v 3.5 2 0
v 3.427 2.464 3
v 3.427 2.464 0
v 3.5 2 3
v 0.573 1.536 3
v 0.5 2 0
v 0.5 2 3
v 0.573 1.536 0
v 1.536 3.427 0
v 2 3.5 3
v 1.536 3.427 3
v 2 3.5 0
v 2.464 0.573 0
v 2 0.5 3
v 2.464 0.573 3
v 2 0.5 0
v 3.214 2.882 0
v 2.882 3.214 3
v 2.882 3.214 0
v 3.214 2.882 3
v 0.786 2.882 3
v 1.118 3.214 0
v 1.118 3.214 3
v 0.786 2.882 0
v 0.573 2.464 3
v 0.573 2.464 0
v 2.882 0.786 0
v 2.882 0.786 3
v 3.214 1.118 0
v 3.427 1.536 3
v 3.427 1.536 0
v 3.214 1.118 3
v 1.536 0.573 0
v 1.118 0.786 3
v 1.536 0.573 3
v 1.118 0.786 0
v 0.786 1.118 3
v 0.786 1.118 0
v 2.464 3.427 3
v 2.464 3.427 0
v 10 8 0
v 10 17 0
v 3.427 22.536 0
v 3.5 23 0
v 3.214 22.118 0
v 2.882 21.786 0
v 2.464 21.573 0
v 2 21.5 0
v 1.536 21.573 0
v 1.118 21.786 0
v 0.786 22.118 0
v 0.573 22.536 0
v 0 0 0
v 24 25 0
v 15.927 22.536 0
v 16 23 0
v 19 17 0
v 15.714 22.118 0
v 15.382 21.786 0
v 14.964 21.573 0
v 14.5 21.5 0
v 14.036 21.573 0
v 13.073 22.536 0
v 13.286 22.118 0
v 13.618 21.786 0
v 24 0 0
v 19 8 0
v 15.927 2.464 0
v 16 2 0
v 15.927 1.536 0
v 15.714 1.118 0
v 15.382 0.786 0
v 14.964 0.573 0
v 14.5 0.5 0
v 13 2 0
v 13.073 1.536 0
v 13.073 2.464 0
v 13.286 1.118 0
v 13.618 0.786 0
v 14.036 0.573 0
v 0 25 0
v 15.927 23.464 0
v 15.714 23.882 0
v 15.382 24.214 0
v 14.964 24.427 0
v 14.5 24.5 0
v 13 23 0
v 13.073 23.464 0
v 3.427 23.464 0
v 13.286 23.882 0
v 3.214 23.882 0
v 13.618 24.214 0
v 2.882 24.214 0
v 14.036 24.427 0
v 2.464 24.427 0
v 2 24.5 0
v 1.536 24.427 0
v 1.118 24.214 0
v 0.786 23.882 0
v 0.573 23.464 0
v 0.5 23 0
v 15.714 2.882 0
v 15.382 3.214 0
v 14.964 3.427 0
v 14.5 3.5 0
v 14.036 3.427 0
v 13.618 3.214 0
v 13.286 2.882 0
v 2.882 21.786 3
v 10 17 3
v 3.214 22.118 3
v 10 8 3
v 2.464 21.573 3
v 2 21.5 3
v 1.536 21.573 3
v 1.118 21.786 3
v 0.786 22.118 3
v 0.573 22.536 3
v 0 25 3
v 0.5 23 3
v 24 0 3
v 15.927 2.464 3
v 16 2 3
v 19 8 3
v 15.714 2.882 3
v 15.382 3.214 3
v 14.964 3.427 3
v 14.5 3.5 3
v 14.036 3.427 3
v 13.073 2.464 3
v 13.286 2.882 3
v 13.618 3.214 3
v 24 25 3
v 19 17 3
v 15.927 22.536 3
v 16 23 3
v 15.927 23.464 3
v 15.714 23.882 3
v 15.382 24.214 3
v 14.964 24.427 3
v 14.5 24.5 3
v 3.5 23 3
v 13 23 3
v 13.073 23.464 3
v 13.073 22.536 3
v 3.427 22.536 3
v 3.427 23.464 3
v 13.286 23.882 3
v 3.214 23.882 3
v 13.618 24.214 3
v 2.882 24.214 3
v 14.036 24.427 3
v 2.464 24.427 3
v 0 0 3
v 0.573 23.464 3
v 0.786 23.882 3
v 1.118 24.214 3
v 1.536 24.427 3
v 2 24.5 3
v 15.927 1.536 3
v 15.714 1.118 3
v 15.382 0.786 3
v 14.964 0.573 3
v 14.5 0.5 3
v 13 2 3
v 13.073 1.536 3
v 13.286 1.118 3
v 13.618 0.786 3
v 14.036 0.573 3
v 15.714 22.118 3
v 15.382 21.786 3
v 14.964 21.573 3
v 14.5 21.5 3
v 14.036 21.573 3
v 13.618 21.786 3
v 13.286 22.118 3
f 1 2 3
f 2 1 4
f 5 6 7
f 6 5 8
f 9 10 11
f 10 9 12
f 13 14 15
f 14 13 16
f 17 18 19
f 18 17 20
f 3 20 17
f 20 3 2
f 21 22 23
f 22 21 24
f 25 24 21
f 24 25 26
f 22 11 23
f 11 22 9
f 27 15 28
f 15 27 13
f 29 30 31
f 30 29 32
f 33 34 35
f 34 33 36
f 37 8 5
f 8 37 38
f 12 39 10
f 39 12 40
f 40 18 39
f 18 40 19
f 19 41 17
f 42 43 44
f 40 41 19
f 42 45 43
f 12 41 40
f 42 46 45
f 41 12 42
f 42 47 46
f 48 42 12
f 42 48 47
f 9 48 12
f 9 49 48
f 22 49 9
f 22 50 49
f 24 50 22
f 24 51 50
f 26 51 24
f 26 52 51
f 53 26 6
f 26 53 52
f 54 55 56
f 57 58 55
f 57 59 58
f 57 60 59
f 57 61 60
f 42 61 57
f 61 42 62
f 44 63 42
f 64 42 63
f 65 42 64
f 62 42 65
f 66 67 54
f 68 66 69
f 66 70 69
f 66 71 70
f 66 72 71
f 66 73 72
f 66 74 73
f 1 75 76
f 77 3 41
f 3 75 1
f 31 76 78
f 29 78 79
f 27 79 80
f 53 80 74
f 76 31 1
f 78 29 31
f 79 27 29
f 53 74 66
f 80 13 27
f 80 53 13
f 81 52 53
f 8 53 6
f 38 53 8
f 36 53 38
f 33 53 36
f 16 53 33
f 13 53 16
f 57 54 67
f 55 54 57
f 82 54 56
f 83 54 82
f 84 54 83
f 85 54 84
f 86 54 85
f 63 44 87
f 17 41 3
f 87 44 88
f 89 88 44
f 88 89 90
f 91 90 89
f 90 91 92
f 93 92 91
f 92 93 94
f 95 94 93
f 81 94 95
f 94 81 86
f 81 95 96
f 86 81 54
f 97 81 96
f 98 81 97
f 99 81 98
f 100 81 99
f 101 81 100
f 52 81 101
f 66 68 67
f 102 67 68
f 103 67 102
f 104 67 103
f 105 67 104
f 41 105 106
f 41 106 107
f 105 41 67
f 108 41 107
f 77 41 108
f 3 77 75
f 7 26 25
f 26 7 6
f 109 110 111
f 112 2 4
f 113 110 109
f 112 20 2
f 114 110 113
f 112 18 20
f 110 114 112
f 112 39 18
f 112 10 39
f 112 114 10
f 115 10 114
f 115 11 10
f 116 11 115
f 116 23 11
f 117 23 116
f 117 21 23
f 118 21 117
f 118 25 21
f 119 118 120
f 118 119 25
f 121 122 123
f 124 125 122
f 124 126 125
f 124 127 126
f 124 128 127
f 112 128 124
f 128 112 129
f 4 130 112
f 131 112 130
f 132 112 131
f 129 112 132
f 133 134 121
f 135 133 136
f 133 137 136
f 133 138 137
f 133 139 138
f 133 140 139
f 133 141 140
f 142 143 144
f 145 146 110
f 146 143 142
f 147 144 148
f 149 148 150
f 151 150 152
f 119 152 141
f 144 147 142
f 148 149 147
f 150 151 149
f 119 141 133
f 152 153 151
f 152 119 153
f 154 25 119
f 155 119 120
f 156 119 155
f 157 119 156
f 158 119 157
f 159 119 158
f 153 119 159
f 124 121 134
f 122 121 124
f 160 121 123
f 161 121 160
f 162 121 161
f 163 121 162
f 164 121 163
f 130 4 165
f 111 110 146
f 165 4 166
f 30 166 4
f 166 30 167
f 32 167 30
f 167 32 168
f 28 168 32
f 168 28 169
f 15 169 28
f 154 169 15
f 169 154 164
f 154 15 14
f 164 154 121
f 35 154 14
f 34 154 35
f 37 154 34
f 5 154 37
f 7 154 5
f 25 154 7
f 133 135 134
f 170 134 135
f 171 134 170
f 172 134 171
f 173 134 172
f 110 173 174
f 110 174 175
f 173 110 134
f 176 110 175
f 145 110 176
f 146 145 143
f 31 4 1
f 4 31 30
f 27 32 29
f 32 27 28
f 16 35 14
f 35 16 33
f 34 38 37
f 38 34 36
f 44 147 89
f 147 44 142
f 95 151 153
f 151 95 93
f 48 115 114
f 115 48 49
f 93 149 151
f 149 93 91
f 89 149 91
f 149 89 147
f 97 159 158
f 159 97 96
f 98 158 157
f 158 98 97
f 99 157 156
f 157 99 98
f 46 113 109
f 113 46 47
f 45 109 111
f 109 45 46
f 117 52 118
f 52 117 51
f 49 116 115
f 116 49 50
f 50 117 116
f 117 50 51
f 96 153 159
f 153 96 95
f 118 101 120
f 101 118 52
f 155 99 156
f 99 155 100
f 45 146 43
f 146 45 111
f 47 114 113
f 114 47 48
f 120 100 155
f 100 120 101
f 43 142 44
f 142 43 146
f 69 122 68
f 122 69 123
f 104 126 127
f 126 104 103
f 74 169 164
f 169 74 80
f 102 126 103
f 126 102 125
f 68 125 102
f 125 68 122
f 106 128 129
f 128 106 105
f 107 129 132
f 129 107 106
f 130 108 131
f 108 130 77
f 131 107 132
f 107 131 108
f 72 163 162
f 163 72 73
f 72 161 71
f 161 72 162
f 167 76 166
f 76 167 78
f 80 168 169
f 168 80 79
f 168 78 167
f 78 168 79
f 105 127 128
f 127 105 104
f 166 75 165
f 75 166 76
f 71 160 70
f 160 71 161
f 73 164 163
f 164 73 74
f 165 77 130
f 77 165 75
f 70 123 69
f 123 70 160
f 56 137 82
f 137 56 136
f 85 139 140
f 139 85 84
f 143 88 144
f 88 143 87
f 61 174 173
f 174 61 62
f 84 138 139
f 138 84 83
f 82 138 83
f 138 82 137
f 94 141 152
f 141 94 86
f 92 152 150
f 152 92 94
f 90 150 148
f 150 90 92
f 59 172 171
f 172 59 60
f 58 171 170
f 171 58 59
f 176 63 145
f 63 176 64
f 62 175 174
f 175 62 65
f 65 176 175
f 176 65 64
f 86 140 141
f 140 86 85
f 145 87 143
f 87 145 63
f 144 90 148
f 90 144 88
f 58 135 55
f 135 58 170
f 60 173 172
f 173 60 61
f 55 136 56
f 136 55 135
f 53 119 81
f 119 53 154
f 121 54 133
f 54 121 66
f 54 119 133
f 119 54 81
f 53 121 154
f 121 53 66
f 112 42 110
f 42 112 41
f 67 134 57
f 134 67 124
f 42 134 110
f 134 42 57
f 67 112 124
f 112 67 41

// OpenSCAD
// file: units.scad
/*
 * Basic units.
 * 
 * Originally by Hans Häggström, 2010.
 * Dual licenced under Creative Commons Attribution-Share Alike 3.0 and LGPL2 or later
 */

// Default unit of measurement is the millimetre
nm = 0.000001 * mm; // nanometre
µm = 0.001 * mm; // micrometre
um = µm; // micrometre (alternate)
mm = 1; // millimetre
cm = 10 * mm; // centimetre
dm = 100 * mm; // decimetre
m = 1000 * mm; // metre
dam = 10000 * mm; // decametre
hm = 100000 * mm; // hectometre
km = 1000000 * mm; // kilometre

// For the purposes of compatibility with Chinese, Japanese and Korean (CJK)
// characters, Unicode has symbols for:
//    nanometre (㎚) - code U+339A
//    micrometre (㎛) - code U+339B
//    millimetre (㎜) - code U+339C
//    centimetre (㎝) - code U+339D
//    kilometre (㎞) - code U+339E
㎚ = nm;
㎛ = µm;
㎜ = mm;
㎝ = cm;
㎞ = km;

inch = 25.4 * mm;

X = [1, 0, 0];
Y = [0, 1, 0];
Z = [0, 0, 1];

M3 = 3*mm;
M4 = 4*mm;
M5 = 5*mm;
M6 = 6*mm;
M8 = 8*mm;


// When a small distance is needed to overlap shapes for boolean cutting, etc.
epsilon = 0.01*mm;
OS = epsilon;  // Over size
// file: kamikaze_shapes.scad
/*
 * Project Name: Kamikaze Shapes
 * Author: Kamikaze Joe
 *
 * Description:
 *
 * Library of modules that create shapes I use frequently.
 *
 */

/* *** TODO LIST ***
 *
 * Tab to spaces
 *
 */

/* ***** Cheats *****

translate([0,0,0])
    rotate([0,0,0])
        function();


 */

// INCLUDE/USE LIBRARIES
//include <shapes.scad>;
//include <fillets.scad>;


// *** VARIABLES ***
standard_fn = 20;
print_gap = 0;

// *** MODULES AND FUNCTIONS *** //



module rounded_base_plate(plate_x, plate_y, plate_corner_r, plate_depth) {

    translate([plate_corner_r, plate_corner_r,0])
    // Recenter minkowski origin to (0,0).
        minkowski() // Remeber outer dimensions of the box are now x+2r
        {
            cube([plate_x - (2 * plate_corner_r),
                  plate_y - (2 * plate_corner_r),
                  plate_depth]);

            cylinder(r=plate_corner_r,h=plate_depth);
        }
}



// Function to create a triangluar prism shape or wedge
module wedge(triangle_height, triangle_base, length) {


    linear_extrude(height = length,
                   center = false,
                   convexity = 10,
                   twist = 0)

        polygon(
                 points=[ [0,0],
                          [0,triangle_height],
                          [triangle_base,triangle_height] ],

                 paths=[ [0,1,2] ]
               );
}


// Rounded isoceles right triangular shape.
// Intended to cut out of flat panels to save space and weight
module triangle_cut_out(triangle_height, length, corner_radius, mod_fn=$fn) {

    translate([corner_radius, corner_radius,0])
    // Recenter minkowski origin to (0,0).
    minkowski() {
        linear_extrude(height = length,
                       center = true,
                       convexity = 10,
                       twist = 0)

        polygon(
            points=[ [0,0,],
                     [triangle_height - ( 2 * corner_radius ),0],
                     [0,triangle_height - ( 2 * corner_radius )] ],

            paths=[ [0,1,2] ]
        );

        cylinder(h=length, r=corner_radius);
    }
}


// recessed_screw_cutout( rdepth, rdiam, slength, screw_diam, mod_fn );
module recessed_screw_cutout( recess_depth,
                              recess_diam,
                              screw_length,
                              screw_diam,
                              mod_fn=$fn) {

    translate([ 0, 0, screw_length ])
    cylinder( h=recess_depth, d=recess_diam, $fn=mod_fn );


    cylinder( h=screw_length, d=screw_diam, $fn=mod_fn );

}

// Taken and modified from children.scad in Examples.
module make_ring_of(radius, count, theta)
{
    for (a = [0 : count - 1]) {
        angle = a * theta / count;
        translate(radius * [sin(angle), -cos(angle), 0])
            rotate([0, 0, angle])
                children();
    }
}

// Build_it function just for testing out each module
// during development.
module build_it() {

}

// *** MAIN ***  //
// build_it();
// Nothing should be here.
// file: fillets.scad
//
// QP_OpenSCAD_lib
//
// GNU GPL v3
// quackingplums@gmail.com
//
// Fillets and radii for smoothing and strengthening edges
//

ff = 0.05;						// fudge factor to prevent barfing on coincident faces

// add this into internal corners to strengthen the joint
module fillet(length = 100, radius = 5)
{
	difference()
	{
		translate([radius / 2, radius / 2, 0])
			cube([radius, radius, length], true);
		translate([radius, radius, 0])
			cylinder(h = length + ff, r = radius, center = true);
	}
}

// subtract a radius from a straight edge to form a curved edge (use minkowski for rounding ALL edges)
module radius(length = 100, radius = 5)
{
	difference()
	{
		translate([radius / 2, radius / 2, 0])
			cube([radius + ff, radius + ff, length], true);
		translate([radius, radius, 0])
			cylinder(h = length + ff, r = radius, center = true);
	}
}
// file: shapes.scad
/*
 *  OpenSCAD Shapes Library (www.openscad.org)
 *  Copyright (C) 2009  Catarina Mota
 *  Copyright (C) 2010  Elmo Mäntynen
 *
 *  License: LGPL 2.1 or later
*/

include <units.scad>

/*
2D Shapes
ngon(sides, radius, center=false);

3D Shapes
box(width, height, depth);
roundedBox(width, height, depth, radius);
cone(height, radius);
ellipticalCylinder(width, height, depth);
ellipsoid(width, height);
tube(height, radius, wall, center = false);
tube2(height, ID, OD, center = false);
ovalTube(width, height, depth, wall, center = false);
hexagon(height, depth);
octagon(height, depth);
dodecagon(height, depth);
hexagram(height, depth);

rightTriangle(adjacent, opposite, depth);
equiTriangle(side, depth);
12ptStar(height, depth);
*/

//----------------------

echo_deprecated_shapes_library();

module echo_deprecated_shapes_library() {
     echo("<font color='red'>
           DEPRECATED: 'shapes' library is now deprecated
           please use 'regular_shapes' instead</font>");
}

// size is a vector [w, h, d]
module box(width, height, depth) {
  echo_deprecated_shapes_library();
  cube([width, height, depth], true);
}

// size is a vector [w, h, d]
module roundedBox(width, height, depth, radius) {
  echo_deprecated_shapes_library();
  size=[width, height, depth];
  cube(size - [2*radius,0,0], true);
  cube(size - [0,2*radius,0], true);
  for (x = [radius-size[0]/2, -radius+size[0]/2],
       y = [radius-size[1]/2, -radius+size[1]/2]) {
    translate([x,y,0]) cylinder(r=radius, h=size[2], center=true);
  }
}

module cone(height, radius, center = false) {
  echo_deprecated_shapes_library();
  cylinder(height, radius, 0, center);
}

module ellipticalCylinder(w,h, height, center = false) {
  echo_deprecated_shapes_library();
  scale([1, h/w, 1]) cylinder(h=height, r=w, center=center);
}

module ellipsoid(w, h, center = false) {
  echo_deprecated_shapes_library();
  scale([1, h/w, 1]) sphere(r=w/2, center=center);
}

// wall is wall thickness
module tube(height, radius, wall, center = false) {
  echo_deprecated_shapes_library();
  linear_extrude (height = height, center = center) {
    difference() {
      circle(r = radius);
      circle(r = radius - wall);
    }
  }
  difference() {
    cylinder(h=height, r=radius, center=center);
    translate([0,0,-epsilon])
      cylinder(h=height+2*epsilon, r=radius-wall, center=center);
  }
}

module tube2(height, ID, OD, center = false) {
  tube(height = height, center = center, radius = OD / 2, wall = (OD - ID)/2);
}

// wall is wall thickness
module ovalTube(height, rx, ry, wall, center = false) {
  echo_deprecated_shapes_library();
  difference() {
    scale([1, ry/rx, 1]) cylinder(h=height, r=rx, center=center);
    scale([(rx-wall)/rx, (ry-wall)/rx, 1]) cylinder(h=height, r=rx, center=center);
  }
}

// size is the XY plane size, height in Z
module hexagon(size, height) {
  echo_deprecated_shapes_library();
  boxWidth = size/1.75;
  for (r = [-60, 0, 60])
    rotate([0,0,r])
      cube([boxWidth, size, height], true);
}

// size is the XY plane size, height in Z
module octagon(size, height) {
  echo_deprecated_shapes_library();
  intersection() {
    cube([size, size, height], true);
    rotate([0,0,45])
      cube([size, size, height], true);
  }
}

// size is the XY plane size, height in Z
module dodecagon(size, height) {
  echo_deprecated_shapes_library();
  intersection() {
    hexagon(size, height);
    rotate([0,0,90]) hexagon(size, height);
  }
}

// size is the XY plane size, height in Z
module hexagram(size, height) {
  echo_deprecated_shapes_library();
  boxWidth=size/1.75;
  for (v = [[0,1],[0,-1],[1,-1]]) {
    intersection() {
      rotate([0,0,60*v[0]]) cube([size, boxWidth, height], true);
      rotate([0,0,60*v[1]]) cube([size, boxWidth, height], true);
    }
  }
}

module rightTriangle(adjacent, opposite, height) {
  echo_deprecated_shapes_library();
  difference() {
    translate([-adjacent/2,opposite/2,0])
      cube([adjacent, opposite, height], true);
    translate([-adjacent,0,0]) {
      rotate([0,0,atan(opposite/adjacent)])
        dislocateBox(adjacent*2, opposite, height+2);
    }
  }
}

module equiTriangle(side, height) {
  echo_deprecated_shapes_library();
  difference() {
    translate([-side/2,side/2,0]) cube([side, side, height], true);
    rotate([0,0,30]) dislocateBox(side*2, side, height);
    translate([-side,0,0]) {
      rotate([0,0,60]) dislocateBox(side*2, side, height);
    }
  }
}

module 12ptStar(size, height) {
  echo_deprecated_shapes_library();
  starNum = 3;
  starAngle = 90/starNum;
  for (s = [1:starNum]) {
    rotate([0, 0, s*starAngle]) cube([size, size, height], true);
  }
}

//-----------------------
//MOVES THE ROTATION AXIS OF A BOX FROM ITS CENTER TO THE BOTTOM LEFT CORNER
module dislocateBox(w, h, d) {
  translate([0,0,-d/2]) cube([w,h,d]);
}
// main file
/*
 * Project Name: Creepy Robot Head - Nasal Camera Mount
 * Author: Kamikaze Joe
 *
 * Description:
 *
 * Raspberry Pi Camera Mount.  Also the point where the jaw mounts
 * to the rest of the head.
 *
 */

/* *** TODO LIST ***
 *
 * Tabs to spaces
 *
 */

/* ***** Cheats *****

cube([x,y,z]);
translate([x,y,z]);
rotate([x_deg,y_deg,z_deg]);
cylinder(h=x,d=y);

translate([0,0,0])
    rotate([0,0,0])
        function();

vector = [ // aka: A matrix or array.
[0, 0, 0],          // vector[0][0,1,2]
[0, 0, 0],              // vector[1]
[0, 0, 0],                      // vector[2]
[0, 0, 0]               // vector[3]
];


 */

// *** INCLUDE/USE LIBRARIES *** //
use <shapes.scad>;
use <fillets.scad>;
use <kamikaze_shapes.scad>;

// *** VARIABLES *** //

plate_depth = 3; // Thickness of the camera mount.

// Maths from module datasheet as a self-reminder of measurments.
picam_screw_hole_vector = [
                           [ 2, 2, 0],
                           [ 2, 2 + 21, 0],
                           [ 2 + 12.5, 2, 0],
                           [ 2 + 12.5, 2 + 21, 0]
                          ];

picam_xy = [ 24, 25 ];

print_gap = 1;
standard_fn = 20;
screw_diam = 2 + print_gap;


// *** MODULES AND FUNCTIONS *** //

module picam_base_plate(plate_depth) {

   cube([picam_xy[0],picam_xy[1],plate_depth]);

}



module picam_screw_holes(plate_depth, screw_diam=screw_diam) {

   translate(picam_screw_hole_vector[0])
      cylinder(h=plate_depth, d=screw_diam, $fn=20);

   translate(picam_screw_hole_vector[1])
      cylinder(h=plate_depth, d=screw_diam, $fn=20);

   translate(picam_screw_hole_vector[2])
      cylinder(h=plate_depth, d=screw_diam, $fn=20);

   translate(picam_screw_hole_vector[3])
      cylinder(h=plate_depth, d=screw_diam, $fn=20);

}



module picam_lense_hole(plate_depth) {

   lense_size = 8 + print_gap;

   // Complicated maths to allow lense_size to adjust and keep hole centered.
   translate([ 24 - (5.5 - ( (lense_size - 8) / 2 )) - lense_size,
               (8.5 - ((lense_size - 8) / 2)),
               0])
      cube([ lense_size, lense_size, plate_depth ]);

}



module picam_mount_plate(plate_depth) {

   difference() {

      picam_base_plate(plate_depth);

      picam_screw_holes(plate_depth);

      picam_lense_hole(plate_depth);

   }
}

// Build_it function just for testing out each module
// during development.
module build_it() {

  picam_mount_plate(plate_depth);

}

// *** MAIN ***  //
build_it();
